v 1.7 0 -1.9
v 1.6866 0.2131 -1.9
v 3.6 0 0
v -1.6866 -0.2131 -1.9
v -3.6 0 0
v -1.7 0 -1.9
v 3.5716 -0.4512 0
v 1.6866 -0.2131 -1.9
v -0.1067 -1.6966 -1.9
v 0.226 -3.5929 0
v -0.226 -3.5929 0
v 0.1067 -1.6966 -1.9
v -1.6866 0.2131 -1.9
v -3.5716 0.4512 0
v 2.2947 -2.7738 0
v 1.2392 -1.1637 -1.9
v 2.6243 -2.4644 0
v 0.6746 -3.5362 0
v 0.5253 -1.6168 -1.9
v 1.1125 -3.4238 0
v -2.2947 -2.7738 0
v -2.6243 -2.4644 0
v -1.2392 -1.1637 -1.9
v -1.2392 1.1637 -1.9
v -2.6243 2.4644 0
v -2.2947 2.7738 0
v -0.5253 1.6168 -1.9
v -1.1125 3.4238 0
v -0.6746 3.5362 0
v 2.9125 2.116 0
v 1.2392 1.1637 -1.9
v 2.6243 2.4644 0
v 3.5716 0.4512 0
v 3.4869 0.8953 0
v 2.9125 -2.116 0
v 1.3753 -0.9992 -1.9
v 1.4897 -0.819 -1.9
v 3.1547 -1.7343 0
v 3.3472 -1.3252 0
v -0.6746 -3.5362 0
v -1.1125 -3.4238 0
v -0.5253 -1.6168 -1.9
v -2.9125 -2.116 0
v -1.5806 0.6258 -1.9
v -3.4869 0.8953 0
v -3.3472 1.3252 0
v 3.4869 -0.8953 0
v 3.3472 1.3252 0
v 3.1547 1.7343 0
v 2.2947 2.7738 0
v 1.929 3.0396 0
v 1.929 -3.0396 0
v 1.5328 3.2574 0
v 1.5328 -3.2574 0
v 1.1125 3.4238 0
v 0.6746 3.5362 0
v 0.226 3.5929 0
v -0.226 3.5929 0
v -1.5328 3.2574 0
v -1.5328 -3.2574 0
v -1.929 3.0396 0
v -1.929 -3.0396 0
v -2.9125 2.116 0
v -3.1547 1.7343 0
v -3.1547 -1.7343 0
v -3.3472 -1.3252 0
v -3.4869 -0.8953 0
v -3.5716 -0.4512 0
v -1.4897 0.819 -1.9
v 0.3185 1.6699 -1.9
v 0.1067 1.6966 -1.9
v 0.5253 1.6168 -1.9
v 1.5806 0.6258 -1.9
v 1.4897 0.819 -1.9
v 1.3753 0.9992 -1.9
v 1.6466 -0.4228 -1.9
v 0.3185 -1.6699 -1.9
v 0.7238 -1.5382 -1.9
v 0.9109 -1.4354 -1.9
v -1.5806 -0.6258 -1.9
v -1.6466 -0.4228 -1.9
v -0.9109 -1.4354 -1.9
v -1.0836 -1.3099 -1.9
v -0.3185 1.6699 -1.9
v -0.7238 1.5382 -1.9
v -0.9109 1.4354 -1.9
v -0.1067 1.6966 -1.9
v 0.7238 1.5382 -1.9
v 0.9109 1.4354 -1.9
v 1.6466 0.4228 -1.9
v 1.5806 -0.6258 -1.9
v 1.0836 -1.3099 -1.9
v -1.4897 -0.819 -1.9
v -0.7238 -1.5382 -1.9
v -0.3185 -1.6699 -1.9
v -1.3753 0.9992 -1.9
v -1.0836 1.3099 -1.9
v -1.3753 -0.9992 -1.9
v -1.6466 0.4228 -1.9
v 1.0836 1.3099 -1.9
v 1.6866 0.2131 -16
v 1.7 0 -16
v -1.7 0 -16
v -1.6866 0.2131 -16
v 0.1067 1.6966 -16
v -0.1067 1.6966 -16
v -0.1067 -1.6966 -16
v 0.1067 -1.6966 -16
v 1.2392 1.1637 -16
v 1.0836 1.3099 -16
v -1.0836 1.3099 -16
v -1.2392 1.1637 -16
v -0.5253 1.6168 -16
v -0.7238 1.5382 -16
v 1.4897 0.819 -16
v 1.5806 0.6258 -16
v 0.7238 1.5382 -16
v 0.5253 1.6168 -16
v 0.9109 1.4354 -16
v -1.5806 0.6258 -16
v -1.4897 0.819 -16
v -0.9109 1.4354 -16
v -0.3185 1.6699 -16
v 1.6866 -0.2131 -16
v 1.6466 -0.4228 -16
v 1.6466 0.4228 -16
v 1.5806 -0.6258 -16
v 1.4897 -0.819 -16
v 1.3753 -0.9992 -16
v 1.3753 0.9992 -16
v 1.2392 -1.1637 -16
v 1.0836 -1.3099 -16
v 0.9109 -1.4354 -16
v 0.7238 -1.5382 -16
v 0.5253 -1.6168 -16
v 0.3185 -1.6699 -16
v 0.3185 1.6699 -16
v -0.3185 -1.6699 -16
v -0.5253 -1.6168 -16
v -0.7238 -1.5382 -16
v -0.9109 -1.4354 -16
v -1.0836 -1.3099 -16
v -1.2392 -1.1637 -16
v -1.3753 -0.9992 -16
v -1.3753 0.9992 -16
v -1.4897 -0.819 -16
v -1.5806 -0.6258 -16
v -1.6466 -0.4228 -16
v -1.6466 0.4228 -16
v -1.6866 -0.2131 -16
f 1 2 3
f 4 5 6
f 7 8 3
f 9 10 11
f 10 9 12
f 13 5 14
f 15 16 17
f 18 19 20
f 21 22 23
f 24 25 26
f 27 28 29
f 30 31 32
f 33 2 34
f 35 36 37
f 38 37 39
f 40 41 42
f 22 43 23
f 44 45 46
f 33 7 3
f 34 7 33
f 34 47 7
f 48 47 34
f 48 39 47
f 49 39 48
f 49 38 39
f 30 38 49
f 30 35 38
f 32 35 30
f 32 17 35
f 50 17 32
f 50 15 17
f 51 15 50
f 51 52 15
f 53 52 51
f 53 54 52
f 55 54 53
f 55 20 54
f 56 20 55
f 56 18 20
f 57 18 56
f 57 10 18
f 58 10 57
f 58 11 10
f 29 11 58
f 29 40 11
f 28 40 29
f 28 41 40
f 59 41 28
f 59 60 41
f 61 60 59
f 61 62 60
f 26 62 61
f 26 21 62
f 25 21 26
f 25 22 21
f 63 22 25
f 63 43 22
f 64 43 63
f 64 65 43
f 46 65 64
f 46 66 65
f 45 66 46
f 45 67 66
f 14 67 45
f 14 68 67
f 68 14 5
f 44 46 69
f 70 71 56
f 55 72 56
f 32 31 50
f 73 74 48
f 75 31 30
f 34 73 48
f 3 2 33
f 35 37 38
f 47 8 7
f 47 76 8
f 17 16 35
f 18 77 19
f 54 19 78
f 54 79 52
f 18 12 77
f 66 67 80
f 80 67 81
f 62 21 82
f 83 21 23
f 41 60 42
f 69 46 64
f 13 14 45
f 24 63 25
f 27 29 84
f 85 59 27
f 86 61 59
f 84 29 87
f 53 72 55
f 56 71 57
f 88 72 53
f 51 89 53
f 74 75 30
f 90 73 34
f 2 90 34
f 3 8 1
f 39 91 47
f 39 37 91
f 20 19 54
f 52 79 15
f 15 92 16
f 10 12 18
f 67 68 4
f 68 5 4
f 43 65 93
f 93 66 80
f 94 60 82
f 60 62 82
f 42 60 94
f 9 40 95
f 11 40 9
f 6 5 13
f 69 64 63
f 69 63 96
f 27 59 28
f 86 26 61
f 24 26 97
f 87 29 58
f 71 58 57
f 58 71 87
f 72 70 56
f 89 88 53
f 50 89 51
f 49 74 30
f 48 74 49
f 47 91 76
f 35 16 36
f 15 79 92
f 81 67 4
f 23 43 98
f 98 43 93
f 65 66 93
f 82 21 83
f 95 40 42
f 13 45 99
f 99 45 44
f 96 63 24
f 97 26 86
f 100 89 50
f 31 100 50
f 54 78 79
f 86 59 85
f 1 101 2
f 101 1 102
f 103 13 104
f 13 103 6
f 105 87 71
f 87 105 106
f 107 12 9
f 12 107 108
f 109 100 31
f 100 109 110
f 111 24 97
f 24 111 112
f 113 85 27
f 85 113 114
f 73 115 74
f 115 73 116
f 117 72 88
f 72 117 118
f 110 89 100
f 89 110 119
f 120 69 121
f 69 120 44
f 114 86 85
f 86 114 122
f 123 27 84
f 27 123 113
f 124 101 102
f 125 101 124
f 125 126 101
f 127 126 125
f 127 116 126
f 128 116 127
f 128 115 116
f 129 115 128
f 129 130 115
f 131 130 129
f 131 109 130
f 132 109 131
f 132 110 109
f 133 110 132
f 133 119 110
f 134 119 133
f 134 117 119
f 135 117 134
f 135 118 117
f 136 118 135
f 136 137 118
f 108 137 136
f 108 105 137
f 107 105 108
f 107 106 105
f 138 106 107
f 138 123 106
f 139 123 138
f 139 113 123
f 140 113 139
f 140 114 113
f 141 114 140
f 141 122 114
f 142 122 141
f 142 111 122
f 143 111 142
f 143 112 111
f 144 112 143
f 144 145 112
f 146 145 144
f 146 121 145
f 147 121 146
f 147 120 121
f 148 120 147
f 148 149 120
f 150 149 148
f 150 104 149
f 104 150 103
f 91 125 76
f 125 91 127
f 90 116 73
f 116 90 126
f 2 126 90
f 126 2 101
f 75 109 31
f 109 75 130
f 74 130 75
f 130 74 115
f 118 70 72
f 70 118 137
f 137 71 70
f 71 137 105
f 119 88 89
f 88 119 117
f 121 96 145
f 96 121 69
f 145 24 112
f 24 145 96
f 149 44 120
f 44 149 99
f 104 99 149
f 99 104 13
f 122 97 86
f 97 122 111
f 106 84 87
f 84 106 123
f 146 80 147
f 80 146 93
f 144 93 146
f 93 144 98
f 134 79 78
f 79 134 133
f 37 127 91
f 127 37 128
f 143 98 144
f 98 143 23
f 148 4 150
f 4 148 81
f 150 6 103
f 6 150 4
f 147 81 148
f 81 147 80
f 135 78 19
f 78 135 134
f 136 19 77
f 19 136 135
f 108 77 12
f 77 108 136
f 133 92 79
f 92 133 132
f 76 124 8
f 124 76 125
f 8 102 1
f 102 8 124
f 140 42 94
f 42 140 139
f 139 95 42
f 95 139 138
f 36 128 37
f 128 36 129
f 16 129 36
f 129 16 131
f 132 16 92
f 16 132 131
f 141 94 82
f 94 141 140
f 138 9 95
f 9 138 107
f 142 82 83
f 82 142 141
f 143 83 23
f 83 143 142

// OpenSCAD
$fn = 50;


difference() {
	union() {
		translate(v = [0, 0, -1.9000000000]) {
			rotate(a = [0, 0, 0]) {
				cylinder(h = 1.9000000000, r1 = 1.7000000000, r2 = 3.6000000000);
			}
		}
		translate(v = [0, 0, -16]) {
			rotate(a = [0, 0, 0]) {
				cylinder(h = 16, r = 1.7000000000);
			}
		}
	}
	union();
}
